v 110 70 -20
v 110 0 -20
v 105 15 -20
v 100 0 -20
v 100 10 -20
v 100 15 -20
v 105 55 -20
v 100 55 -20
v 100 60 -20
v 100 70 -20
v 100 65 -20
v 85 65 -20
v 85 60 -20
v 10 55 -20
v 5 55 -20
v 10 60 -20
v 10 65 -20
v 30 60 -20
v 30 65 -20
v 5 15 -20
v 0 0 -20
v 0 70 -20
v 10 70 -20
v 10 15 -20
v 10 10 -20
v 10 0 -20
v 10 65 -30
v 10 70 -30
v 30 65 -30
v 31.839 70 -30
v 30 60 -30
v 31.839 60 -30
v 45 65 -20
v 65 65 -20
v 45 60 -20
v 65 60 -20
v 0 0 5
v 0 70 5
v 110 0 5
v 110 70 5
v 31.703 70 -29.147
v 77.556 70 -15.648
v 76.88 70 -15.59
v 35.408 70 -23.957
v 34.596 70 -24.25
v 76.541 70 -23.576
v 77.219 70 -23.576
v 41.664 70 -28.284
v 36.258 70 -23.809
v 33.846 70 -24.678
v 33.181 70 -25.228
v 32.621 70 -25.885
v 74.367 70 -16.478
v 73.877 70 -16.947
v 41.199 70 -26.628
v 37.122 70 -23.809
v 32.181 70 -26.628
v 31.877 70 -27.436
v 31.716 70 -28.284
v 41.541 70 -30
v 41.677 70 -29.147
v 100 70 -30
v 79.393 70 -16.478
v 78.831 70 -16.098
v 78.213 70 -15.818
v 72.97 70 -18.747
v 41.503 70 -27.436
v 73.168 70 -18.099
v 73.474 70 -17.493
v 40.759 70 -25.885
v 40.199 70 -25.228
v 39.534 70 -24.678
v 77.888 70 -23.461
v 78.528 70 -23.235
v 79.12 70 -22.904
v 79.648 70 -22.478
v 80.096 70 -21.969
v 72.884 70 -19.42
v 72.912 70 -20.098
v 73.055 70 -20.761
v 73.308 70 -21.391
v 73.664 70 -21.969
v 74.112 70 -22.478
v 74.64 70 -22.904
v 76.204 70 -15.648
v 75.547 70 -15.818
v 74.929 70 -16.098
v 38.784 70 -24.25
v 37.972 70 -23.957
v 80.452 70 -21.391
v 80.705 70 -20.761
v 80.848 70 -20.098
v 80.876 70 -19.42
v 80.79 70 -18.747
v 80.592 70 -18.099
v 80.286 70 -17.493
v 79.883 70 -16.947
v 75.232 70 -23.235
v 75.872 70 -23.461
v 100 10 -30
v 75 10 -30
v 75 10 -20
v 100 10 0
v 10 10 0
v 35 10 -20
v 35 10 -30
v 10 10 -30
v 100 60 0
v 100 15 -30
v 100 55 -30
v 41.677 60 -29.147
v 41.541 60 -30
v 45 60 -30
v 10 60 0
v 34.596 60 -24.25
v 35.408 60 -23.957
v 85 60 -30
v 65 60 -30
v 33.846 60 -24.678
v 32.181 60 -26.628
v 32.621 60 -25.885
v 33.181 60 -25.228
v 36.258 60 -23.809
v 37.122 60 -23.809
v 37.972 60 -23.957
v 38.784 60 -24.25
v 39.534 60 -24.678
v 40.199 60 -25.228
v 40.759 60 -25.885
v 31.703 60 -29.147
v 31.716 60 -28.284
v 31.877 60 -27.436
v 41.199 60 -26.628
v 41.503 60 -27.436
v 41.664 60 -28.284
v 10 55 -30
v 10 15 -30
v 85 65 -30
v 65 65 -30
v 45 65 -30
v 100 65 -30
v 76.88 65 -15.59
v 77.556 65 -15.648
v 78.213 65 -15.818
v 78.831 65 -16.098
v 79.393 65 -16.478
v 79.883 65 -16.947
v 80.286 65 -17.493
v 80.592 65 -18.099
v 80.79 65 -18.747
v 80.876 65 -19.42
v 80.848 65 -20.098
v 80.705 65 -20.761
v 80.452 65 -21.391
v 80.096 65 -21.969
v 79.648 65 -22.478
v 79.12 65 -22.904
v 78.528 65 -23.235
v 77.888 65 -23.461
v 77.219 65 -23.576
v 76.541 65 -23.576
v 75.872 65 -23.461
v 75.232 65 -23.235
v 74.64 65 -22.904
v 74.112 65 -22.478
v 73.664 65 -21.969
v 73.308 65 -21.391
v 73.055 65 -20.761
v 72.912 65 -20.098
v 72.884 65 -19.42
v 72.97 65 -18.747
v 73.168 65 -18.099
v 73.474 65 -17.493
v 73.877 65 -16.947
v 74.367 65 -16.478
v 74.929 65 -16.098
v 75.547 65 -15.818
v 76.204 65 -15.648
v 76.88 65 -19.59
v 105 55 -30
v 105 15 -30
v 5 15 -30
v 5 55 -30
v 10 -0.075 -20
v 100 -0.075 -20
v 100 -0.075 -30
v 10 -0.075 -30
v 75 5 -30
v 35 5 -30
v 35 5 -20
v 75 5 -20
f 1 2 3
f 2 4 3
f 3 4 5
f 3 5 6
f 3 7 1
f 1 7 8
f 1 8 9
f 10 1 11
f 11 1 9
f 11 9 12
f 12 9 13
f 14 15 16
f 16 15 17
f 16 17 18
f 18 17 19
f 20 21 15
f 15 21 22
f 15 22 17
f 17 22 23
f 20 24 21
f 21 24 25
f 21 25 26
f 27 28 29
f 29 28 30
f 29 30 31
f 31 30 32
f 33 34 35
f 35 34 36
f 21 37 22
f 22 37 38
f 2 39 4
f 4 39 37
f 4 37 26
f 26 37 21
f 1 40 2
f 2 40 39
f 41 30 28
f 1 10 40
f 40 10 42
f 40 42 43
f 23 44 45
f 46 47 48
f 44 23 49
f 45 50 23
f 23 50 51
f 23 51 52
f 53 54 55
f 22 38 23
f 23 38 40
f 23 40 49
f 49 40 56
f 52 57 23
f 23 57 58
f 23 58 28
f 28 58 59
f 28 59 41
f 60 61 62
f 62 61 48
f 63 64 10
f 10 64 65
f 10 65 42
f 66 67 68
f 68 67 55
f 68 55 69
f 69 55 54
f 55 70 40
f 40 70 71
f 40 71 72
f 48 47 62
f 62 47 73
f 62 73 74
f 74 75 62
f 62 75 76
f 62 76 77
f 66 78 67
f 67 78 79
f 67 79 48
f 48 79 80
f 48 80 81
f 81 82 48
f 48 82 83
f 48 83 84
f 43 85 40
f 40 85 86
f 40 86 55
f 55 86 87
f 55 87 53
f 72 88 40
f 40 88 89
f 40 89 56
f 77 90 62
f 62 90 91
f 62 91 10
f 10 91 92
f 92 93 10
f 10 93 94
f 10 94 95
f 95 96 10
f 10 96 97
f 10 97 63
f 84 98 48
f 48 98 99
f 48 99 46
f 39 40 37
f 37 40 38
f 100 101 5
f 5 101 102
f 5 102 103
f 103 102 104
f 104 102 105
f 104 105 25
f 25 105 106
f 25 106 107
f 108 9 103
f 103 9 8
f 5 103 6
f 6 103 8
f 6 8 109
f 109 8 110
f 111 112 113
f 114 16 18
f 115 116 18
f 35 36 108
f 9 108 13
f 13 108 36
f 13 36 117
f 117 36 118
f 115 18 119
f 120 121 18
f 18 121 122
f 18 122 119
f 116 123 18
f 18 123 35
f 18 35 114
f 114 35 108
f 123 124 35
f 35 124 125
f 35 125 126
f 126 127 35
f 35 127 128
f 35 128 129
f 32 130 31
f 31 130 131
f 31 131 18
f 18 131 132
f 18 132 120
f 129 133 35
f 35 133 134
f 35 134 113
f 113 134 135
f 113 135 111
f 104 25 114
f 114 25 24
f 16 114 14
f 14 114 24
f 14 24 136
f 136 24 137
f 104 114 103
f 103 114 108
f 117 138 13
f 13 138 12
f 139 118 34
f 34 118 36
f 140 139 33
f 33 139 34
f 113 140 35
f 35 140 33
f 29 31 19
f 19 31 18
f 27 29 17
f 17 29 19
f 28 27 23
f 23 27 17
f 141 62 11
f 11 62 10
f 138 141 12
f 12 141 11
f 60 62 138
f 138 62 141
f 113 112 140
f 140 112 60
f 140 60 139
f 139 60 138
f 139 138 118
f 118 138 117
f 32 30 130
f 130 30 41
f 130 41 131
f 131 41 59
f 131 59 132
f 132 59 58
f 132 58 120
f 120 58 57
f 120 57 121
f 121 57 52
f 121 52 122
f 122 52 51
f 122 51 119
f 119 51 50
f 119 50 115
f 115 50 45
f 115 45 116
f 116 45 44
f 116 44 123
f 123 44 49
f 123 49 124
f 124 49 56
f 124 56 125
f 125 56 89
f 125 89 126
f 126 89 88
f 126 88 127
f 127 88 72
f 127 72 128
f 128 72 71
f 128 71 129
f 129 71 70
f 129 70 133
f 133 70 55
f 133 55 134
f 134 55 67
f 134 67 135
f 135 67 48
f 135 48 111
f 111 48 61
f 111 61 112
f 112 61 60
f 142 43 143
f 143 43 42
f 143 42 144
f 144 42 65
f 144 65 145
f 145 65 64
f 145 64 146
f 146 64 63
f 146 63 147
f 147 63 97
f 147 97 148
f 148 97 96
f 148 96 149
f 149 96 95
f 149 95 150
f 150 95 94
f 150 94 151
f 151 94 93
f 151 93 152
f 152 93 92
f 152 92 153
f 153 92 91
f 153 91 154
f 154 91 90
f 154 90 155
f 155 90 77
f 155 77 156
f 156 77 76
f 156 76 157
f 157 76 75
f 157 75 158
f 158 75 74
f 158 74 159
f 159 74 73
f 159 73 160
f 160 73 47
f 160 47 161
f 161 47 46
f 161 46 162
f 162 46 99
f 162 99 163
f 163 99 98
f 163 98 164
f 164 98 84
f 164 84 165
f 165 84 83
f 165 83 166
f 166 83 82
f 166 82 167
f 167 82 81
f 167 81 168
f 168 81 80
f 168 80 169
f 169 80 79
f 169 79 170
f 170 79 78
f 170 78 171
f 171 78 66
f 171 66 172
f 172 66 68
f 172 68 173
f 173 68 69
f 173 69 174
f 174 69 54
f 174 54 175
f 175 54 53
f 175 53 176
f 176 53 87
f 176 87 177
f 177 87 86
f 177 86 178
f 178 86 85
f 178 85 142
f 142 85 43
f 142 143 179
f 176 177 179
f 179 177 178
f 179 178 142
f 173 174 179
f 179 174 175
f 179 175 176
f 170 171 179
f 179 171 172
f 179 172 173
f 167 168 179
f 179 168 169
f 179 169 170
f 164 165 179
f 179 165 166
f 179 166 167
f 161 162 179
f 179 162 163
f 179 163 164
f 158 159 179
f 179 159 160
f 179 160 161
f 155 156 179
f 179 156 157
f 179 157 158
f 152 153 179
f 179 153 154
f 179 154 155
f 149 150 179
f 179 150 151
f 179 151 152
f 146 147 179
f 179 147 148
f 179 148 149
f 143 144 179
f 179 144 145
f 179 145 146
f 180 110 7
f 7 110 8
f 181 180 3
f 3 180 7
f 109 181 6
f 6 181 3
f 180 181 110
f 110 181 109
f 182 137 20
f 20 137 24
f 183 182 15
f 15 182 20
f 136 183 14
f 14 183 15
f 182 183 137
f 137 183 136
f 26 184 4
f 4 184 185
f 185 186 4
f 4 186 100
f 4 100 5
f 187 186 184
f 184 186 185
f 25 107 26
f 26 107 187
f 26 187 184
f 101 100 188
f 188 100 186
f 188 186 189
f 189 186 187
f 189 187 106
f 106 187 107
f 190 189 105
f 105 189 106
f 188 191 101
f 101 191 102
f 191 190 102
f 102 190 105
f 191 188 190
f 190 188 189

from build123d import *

# Parameters (mm, degrees)
SKETCH1_W           = 110
SKETCH1_H           = 70
BOSS_EXTRUDE1_DEPTH = 5
SKETCH2_W           = 90
SKETCH2_H           = 10
BOSS_EXTRUDE2_DEPTH = 20
BOSS_EXTRUDE5_DEPTH = 10
SKETCH7_R           = 5
CUT_EXTRUDE2_DEPTH  = 10
SKETCH8_R           = 4
CUT_EXTRUDE3_DEPTH  = 5
SKETCH9_W           = 5
SKETCH9_H           = 40
BOSS_EXTRUDE6_DEPTH = 10
SKETCH10_W          = 90
SKETCH10_H          = 10.075231777
BOSS_EXTRUDE7_DEPTH = 10
SKETCH11_W          = 40
SKETCH11_H          = 10
CUT_EXTRUDE4_DEPTH  = 5


with BuildPart() as part:
    # Sketch1 → Boss-Extrude1 (new body)
    with BuildSketch(Plane.XY):
        with Locations((55, 35)):
            Rectangle(SKETCH1_W, SKETCH1_H)
    extrude(amount=BOSS_EXTRUDE1_DEPTH)

    # Sketch2 → Boss-Extrude2 (add)
    with BuildSketch(Plane(origin=(0, 0, 0), x_dir=(-1, 0, 0), z_dir=(0, 0, -1))):
        with Locations((-55, 65)):
            Rectangle(SKETCH2_W, SKETCH2_H)
        Polygon((-100, 70), (-110, 70), (-110, 0), (-100, 0), (-100, 10), (-100, 60), align=None)
        Polygon((0, 70), (-10, 70), (-10, 60), (-10, 10), (-10, 0), (0, 0), align=None)
        with Locations((-55, 5)):
            Rectangle(SKETCH2_W, SKETCH2_H)
    extrude(amount=BOSS_EXTRUDE2_DEPTH)

    # Sketch6 → Boss-Extrude5 (add)
    with BuildSketch(Plane(origin=(0, 0, -20), x_dir=(-1, 0, 0), z_dir=(0, 0, -1))):
        Polygon((-45, 60), (-30, 60), (-30, 65), (-10, 65), (-10, 70), (-100, 70), (-100, 65), (-85, 65), (-85, 60), (-65, 60), (-65, 65), (-45, 65), align=None)
    extrude(amount=BOSS_EXTRUDE5_DEPTH)

    # Sketch7 → Cut-Extrude2 (cut)
    with BuildSketch(Plane(origin=(0, 70, 0), x_dir=(1, 0, 0), z_dir=(0, 1, 0))):
        with Locations((36.69, 28.79)):
            Circle(SKETCH7_R)
    extrude(amount=-CUT_EXTRUDE2_DEPTH, mode=Mode.SUBTRACT)

    # Sketch8 → Cut-Extrude3 (cut)
    with BuildSketch(Plane(origin=(0, 70, 0), x_dir=(1, 0, 0), z_dir=(0, 1, 0))):
        with Locations(Location((76.88, 19.59, 0), (0, 0, 270))):
            Circle(SKETCH8_R)
    extrude(amount=-CUT_EXTRUDE3_DEPTH, mode=Mode.SUBTRACT)

    # Sketch9 → Boss-Extrude6 (add)
    with BuildSketch(Plane(origin=(0, 0, -20), x_dir=(-1, 0, 0), z_dir=(0, 0, -1))):
        with Locations((-102.5, 35)):
            Rectangle(SKETCH9_W, SKETCH9_H)
        with Locations((-7.5, 35)):
            Rectangle(SKETCH9_W, SKETCH9_H)
    extrude(amount=BOSS_EXTRUDE6_DEPTH)

    # Sketch10 → Boss-Extrude7 (add)
    with BuildSketch(Plane(origin=(0, 0, -20), x_dir=(-1, 0, 0), z_dir=(0, 0, -1))):
        with Locations((-55, 4.962384111)):
            Rectangle(SKETCH10_W, SKETCH10_H)
    extrude(amount=BOSS_EXTRUDE7_DEPTH)

    # Sketch11 → Cut-Extrude4 (cut)
    with BuildSketch(Plane(origin=(0, 10, 0), x_dir=(1, 0, 0), z_dir=(0, 1, 0))):
        with Locations((55, 25)):
            Rectangle(SKETCH11_W, SKETCH11_H)
    extrude(amount=-CUT_EXTRUDE4_DEPTH, mode=Mode.SUBTRACT)


solid = part.part
